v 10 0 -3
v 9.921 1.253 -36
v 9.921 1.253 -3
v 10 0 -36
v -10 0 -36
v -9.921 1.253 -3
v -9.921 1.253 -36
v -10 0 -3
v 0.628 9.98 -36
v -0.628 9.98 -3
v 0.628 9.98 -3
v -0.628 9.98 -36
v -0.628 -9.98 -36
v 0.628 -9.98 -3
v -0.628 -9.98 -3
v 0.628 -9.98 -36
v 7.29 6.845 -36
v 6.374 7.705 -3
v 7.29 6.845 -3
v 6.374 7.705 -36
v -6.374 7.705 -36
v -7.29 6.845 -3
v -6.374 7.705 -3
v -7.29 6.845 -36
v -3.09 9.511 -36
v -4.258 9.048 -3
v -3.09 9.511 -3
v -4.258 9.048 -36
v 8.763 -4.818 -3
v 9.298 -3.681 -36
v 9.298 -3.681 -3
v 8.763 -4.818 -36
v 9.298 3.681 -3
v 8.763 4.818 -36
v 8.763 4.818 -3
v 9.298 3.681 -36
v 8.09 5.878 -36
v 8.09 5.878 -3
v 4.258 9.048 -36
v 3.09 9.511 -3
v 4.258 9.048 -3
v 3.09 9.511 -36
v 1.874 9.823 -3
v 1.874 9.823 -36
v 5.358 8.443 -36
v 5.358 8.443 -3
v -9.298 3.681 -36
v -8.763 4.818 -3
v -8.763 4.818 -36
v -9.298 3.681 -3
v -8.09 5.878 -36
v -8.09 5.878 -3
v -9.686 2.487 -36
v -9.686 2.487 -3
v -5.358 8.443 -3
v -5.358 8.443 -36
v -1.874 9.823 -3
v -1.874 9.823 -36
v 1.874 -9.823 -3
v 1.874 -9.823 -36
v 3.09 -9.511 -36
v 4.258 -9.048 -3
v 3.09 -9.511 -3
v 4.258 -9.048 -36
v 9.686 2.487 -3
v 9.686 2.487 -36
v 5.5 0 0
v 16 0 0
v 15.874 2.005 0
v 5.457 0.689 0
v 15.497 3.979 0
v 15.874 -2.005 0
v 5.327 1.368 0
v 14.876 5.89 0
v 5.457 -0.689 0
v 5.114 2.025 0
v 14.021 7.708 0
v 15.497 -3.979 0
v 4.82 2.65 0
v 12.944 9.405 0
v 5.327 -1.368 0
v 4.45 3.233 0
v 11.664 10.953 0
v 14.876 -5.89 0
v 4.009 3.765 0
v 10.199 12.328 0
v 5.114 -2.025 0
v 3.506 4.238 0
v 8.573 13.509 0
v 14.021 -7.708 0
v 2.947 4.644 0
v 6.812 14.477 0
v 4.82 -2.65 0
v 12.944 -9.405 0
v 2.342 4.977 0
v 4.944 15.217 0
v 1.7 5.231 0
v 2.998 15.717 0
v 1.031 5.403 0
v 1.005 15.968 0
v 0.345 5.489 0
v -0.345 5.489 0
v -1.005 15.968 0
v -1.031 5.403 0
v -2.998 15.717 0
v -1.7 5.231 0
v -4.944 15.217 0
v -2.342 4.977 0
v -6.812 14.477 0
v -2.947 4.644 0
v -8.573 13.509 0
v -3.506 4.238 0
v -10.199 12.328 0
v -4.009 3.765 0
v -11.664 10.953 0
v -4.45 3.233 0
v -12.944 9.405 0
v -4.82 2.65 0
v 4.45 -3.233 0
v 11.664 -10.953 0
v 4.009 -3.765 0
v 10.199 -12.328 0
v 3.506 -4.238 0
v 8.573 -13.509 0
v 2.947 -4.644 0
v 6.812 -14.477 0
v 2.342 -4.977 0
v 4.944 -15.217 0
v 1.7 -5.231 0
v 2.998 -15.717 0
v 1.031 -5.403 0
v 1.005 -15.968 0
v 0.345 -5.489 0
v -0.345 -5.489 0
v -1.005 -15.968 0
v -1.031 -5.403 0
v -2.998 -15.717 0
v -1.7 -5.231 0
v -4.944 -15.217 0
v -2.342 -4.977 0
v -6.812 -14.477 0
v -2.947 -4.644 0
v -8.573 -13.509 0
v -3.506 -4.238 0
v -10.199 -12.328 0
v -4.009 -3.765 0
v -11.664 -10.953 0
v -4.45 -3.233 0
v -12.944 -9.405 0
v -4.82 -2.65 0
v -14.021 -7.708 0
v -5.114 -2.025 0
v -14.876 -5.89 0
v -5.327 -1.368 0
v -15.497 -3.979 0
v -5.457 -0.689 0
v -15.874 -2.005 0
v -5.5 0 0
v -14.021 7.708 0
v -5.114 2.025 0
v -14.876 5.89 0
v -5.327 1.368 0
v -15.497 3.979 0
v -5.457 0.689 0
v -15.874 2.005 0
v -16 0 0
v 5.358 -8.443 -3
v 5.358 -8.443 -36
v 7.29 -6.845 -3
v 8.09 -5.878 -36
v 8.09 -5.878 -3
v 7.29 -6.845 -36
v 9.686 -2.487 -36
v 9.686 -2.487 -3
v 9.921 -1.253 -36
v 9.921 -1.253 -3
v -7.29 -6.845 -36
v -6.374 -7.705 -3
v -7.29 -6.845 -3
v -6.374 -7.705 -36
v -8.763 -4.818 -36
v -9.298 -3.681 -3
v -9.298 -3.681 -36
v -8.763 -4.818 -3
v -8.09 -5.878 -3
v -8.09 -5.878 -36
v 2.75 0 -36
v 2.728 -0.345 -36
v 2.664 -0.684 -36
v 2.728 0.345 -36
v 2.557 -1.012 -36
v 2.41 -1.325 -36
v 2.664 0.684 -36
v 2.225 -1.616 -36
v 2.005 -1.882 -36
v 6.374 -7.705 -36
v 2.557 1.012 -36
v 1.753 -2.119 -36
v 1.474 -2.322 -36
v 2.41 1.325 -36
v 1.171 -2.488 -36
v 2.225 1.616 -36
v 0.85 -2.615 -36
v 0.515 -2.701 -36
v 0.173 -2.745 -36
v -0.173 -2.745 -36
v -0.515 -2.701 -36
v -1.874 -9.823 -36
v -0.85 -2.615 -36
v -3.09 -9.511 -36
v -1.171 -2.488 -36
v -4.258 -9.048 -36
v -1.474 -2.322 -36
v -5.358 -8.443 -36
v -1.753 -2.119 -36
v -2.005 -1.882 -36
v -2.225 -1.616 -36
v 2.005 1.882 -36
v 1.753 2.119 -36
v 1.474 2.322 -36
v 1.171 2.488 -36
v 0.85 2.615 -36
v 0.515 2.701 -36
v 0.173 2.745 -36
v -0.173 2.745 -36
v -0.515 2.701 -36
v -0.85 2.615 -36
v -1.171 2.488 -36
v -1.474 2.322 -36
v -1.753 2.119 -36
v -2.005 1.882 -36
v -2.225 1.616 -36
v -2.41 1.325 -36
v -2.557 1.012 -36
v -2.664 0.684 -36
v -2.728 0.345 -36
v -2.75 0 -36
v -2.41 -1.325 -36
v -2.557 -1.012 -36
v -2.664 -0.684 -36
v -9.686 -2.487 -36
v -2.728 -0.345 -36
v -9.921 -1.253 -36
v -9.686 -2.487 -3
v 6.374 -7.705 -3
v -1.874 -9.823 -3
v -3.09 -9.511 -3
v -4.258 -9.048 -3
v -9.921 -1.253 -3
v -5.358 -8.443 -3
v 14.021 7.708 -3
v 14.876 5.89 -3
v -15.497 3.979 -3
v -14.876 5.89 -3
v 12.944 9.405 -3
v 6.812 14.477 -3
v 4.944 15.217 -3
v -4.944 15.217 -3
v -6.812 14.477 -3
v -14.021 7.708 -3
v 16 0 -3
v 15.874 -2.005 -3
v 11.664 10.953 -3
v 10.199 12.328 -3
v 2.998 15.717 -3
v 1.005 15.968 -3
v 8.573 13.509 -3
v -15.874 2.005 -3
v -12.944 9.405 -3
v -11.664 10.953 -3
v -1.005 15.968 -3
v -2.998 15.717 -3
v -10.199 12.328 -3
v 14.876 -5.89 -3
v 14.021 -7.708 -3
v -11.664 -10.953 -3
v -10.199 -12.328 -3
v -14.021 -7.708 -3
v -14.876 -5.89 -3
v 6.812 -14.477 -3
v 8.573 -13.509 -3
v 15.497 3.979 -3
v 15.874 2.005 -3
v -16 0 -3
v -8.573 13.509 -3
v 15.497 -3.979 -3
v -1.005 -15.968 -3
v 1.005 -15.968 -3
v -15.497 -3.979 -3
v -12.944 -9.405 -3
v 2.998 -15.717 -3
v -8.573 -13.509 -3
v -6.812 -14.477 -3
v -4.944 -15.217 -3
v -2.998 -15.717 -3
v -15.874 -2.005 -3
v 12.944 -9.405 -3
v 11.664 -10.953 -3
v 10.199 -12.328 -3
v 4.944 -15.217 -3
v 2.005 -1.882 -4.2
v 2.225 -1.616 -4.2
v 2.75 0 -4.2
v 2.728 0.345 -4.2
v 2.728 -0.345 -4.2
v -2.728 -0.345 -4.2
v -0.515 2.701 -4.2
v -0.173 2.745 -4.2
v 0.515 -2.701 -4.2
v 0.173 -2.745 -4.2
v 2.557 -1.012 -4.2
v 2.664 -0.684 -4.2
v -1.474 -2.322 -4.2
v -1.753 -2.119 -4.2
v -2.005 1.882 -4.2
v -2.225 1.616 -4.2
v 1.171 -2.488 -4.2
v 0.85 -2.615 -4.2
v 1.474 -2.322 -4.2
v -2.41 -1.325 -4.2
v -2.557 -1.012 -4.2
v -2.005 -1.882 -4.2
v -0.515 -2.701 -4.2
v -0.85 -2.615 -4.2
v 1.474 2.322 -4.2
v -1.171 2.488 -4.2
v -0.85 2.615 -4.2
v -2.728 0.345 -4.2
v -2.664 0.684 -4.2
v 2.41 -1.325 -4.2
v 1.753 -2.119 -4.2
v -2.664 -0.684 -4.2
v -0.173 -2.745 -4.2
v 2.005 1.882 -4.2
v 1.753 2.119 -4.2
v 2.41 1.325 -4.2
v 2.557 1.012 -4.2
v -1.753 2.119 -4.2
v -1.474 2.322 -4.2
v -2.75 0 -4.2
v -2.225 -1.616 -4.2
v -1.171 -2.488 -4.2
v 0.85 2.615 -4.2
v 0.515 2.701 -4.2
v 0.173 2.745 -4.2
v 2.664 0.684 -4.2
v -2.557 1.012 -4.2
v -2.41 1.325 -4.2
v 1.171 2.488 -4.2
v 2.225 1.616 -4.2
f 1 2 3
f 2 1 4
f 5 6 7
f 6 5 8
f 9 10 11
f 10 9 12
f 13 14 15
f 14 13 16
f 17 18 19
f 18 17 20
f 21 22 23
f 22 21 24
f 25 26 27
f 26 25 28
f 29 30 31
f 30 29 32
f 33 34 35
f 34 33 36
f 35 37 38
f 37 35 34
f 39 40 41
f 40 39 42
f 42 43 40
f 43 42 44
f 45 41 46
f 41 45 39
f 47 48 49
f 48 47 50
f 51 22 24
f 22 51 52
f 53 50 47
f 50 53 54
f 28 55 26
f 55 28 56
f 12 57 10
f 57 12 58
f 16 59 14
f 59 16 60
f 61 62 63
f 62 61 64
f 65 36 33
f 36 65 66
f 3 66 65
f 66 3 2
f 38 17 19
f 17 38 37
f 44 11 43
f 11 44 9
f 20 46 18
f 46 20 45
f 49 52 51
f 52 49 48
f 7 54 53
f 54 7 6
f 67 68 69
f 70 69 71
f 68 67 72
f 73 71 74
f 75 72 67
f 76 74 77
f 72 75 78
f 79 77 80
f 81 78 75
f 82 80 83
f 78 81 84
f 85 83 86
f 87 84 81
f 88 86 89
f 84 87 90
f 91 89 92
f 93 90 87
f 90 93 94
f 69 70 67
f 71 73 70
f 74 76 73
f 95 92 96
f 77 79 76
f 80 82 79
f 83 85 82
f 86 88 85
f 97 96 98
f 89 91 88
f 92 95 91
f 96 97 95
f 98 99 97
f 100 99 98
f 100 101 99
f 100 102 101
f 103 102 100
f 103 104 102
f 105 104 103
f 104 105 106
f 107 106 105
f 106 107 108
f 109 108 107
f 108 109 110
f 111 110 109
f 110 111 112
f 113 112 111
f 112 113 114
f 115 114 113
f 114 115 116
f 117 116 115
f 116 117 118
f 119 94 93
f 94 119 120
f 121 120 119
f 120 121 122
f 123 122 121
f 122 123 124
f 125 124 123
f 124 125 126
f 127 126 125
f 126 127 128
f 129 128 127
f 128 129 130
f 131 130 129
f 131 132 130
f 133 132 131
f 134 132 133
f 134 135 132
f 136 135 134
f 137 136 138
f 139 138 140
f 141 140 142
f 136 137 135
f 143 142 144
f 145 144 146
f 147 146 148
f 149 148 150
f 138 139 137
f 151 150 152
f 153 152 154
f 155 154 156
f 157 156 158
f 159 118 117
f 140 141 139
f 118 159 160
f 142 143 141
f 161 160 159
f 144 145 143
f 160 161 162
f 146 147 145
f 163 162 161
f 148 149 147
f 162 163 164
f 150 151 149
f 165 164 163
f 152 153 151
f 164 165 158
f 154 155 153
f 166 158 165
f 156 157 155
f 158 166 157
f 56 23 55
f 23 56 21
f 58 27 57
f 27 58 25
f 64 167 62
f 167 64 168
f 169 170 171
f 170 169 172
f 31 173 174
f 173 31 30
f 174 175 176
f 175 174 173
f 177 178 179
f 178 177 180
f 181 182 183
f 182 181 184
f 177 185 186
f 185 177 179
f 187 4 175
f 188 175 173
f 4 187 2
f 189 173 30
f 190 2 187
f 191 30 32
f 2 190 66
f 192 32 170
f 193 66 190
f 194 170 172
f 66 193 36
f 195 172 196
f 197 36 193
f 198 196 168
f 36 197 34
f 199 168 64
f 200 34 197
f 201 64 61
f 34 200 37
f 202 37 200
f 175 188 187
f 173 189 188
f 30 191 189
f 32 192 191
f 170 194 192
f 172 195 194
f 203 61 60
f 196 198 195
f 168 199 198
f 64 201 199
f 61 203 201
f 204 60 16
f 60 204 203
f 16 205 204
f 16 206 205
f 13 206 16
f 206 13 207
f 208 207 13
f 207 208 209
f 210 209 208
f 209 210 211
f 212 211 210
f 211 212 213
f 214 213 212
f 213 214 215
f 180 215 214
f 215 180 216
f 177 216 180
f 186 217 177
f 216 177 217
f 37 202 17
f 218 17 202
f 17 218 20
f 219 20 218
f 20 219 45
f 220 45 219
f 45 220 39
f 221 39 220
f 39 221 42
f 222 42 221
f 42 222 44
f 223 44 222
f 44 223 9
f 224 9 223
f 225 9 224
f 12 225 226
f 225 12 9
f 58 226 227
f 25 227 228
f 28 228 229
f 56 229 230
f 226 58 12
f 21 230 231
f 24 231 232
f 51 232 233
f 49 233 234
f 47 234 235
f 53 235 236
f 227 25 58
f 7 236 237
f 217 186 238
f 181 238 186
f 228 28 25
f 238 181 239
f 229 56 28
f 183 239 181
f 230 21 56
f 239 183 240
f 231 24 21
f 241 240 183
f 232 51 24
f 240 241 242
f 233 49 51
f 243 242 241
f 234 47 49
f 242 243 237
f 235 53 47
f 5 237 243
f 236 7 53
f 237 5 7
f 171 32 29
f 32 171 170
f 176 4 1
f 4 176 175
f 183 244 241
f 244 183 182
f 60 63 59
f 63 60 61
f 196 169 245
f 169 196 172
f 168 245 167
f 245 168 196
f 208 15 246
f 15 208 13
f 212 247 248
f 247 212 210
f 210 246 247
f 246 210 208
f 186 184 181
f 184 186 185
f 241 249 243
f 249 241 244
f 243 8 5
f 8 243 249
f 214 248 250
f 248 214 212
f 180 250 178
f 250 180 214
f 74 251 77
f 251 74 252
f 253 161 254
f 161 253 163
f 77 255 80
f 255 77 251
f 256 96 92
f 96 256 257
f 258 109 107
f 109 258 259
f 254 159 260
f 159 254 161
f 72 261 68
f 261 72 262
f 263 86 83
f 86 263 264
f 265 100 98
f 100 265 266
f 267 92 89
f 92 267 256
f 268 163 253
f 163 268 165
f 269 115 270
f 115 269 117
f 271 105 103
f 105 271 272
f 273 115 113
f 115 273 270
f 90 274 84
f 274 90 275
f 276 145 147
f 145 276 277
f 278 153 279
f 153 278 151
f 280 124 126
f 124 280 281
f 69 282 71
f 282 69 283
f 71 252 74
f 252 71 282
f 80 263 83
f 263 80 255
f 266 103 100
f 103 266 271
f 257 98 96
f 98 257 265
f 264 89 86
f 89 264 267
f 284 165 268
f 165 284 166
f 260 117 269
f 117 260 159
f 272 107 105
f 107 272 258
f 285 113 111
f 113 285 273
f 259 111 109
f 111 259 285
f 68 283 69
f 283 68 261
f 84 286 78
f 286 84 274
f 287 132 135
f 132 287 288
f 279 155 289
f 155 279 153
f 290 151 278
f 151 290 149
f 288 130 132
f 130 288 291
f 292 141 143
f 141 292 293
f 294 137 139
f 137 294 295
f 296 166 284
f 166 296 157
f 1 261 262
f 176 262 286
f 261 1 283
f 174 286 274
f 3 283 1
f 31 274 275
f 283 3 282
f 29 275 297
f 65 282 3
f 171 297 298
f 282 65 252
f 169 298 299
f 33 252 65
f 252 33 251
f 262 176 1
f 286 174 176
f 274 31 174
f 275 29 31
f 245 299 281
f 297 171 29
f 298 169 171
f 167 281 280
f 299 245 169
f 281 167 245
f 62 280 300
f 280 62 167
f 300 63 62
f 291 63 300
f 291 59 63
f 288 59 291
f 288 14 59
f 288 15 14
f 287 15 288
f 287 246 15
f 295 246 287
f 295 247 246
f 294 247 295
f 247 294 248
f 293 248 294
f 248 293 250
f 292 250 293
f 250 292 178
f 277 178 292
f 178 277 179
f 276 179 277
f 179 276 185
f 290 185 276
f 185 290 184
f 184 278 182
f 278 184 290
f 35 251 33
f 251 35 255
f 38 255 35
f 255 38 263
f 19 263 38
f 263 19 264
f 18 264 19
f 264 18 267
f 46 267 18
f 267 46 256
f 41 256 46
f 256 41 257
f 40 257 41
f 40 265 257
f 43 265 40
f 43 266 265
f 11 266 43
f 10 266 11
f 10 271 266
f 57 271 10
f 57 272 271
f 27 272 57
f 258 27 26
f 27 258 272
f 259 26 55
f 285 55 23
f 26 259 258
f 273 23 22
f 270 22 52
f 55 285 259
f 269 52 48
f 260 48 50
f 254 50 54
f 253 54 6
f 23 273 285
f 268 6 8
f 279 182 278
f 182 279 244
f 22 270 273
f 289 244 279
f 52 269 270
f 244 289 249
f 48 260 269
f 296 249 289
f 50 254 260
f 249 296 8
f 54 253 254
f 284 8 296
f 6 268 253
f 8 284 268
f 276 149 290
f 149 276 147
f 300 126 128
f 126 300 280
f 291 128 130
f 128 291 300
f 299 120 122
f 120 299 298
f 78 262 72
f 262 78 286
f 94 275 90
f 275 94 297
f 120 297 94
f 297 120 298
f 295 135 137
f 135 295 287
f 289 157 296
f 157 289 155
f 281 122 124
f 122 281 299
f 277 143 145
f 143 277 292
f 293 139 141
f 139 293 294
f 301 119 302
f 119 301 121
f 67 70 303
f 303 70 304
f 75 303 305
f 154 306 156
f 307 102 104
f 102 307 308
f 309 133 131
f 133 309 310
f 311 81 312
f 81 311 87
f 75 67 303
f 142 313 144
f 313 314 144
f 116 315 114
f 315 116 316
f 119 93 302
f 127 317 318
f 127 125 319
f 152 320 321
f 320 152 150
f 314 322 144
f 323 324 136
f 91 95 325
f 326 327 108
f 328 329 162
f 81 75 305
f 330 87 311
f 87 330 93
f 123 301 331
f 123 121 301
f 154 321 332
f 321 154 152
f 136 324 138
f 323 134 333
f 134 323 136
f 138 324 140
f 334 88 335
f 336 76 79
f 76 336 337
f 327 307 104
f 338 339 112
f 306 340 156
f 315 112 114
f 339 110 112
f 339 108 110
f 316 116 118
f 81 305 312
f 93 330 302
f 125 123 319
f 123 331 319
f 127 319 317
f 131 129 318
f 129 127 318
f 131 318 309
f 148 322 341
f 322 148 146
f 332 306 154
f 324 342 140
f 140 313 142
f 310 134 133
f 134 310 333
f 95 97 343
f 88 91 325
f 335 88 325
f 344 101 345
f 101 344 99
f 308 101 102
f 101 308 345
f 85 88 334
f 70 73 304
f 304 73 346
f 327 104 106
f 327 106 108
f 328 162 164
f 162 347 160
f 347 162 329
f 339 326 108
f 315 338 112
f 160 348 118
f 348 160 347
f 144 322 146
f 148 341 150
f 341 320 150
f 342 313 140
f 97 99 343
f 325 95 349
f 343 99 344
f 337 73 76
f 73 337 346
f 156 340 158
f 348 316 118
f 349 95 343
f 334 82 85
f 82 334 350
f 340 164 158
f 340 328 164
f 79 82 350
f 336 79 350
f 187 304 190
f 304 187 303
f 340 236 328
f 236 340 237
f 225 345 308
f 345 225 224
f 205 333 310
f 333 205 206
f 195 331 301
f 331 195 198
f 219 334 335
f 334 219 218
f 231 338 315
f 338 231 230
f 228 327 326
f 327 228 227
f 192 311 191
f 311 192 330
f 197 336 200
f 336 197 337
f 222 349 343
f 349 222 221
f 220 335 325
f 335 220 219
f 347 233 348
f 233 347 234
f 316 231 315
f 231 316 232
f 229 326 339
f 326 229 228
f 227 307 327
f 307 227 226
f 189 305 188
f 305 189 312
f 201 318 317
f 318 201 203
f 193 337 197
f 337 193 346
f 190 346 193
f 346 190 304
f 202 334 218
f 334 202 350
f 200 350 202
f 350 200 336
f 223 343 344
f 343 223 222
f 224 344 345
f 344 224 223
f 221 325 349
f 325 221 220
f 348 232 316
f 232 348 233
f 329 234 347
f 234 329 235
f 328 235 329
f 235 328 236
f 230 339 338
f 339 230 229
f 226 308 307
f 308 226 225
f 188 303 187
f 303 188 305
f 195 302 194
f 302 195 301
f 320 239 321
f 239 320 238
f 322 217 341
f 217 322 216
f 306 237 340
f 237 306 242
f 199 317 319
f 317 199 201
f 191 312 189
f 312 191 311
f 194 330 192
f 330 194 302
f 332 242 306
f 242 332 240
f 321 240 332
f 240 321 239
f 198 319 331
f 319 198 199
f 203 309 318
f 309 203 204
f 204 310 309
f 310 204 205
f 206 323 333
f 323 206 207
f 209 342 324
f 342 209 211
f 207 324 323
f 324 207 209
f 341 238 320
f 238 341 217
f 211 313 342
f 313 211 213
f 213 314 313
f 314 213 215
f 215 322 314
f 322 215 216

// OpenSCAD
$fn = 50;


difference() {
	union() {
		translate(v = [0, 0, -36.0000000000]) {
			cylinder(h = 36, r = 10.0000000000);
		}
		translate(v = [0, 0, -3.0000000000]) {
			cylinder(h = 3, r = 16.0000000000);
		}
	}
	union() {
		translate(v = [0, 0, 0]) {
			rotate(a = [0, 0, 0]) {
				difference() {
					union() {
						#translate(v = [0, 0, -36.0000000000]) {
							cylinder(h = 36, r = 2.2500000000);
						}
						#translate(v = [0, 0, -4.2000000000]) {
							cylinder(h = 4.2000000000, r = 10.0000000000, r1 = 2.7500000000, r2 = 5.5000000000);
						}
						#translate(v = [0, 0, -36.0000000000]) {
							cylinder(h = 36, r = 2.7500000000);
						}
						#translate(v = [0, 0, -36.0000000000]) {
							cylinder(h = 36, r = 2.2500000000);
						}
					}
					union();
				}
			}
		}
	}
}
